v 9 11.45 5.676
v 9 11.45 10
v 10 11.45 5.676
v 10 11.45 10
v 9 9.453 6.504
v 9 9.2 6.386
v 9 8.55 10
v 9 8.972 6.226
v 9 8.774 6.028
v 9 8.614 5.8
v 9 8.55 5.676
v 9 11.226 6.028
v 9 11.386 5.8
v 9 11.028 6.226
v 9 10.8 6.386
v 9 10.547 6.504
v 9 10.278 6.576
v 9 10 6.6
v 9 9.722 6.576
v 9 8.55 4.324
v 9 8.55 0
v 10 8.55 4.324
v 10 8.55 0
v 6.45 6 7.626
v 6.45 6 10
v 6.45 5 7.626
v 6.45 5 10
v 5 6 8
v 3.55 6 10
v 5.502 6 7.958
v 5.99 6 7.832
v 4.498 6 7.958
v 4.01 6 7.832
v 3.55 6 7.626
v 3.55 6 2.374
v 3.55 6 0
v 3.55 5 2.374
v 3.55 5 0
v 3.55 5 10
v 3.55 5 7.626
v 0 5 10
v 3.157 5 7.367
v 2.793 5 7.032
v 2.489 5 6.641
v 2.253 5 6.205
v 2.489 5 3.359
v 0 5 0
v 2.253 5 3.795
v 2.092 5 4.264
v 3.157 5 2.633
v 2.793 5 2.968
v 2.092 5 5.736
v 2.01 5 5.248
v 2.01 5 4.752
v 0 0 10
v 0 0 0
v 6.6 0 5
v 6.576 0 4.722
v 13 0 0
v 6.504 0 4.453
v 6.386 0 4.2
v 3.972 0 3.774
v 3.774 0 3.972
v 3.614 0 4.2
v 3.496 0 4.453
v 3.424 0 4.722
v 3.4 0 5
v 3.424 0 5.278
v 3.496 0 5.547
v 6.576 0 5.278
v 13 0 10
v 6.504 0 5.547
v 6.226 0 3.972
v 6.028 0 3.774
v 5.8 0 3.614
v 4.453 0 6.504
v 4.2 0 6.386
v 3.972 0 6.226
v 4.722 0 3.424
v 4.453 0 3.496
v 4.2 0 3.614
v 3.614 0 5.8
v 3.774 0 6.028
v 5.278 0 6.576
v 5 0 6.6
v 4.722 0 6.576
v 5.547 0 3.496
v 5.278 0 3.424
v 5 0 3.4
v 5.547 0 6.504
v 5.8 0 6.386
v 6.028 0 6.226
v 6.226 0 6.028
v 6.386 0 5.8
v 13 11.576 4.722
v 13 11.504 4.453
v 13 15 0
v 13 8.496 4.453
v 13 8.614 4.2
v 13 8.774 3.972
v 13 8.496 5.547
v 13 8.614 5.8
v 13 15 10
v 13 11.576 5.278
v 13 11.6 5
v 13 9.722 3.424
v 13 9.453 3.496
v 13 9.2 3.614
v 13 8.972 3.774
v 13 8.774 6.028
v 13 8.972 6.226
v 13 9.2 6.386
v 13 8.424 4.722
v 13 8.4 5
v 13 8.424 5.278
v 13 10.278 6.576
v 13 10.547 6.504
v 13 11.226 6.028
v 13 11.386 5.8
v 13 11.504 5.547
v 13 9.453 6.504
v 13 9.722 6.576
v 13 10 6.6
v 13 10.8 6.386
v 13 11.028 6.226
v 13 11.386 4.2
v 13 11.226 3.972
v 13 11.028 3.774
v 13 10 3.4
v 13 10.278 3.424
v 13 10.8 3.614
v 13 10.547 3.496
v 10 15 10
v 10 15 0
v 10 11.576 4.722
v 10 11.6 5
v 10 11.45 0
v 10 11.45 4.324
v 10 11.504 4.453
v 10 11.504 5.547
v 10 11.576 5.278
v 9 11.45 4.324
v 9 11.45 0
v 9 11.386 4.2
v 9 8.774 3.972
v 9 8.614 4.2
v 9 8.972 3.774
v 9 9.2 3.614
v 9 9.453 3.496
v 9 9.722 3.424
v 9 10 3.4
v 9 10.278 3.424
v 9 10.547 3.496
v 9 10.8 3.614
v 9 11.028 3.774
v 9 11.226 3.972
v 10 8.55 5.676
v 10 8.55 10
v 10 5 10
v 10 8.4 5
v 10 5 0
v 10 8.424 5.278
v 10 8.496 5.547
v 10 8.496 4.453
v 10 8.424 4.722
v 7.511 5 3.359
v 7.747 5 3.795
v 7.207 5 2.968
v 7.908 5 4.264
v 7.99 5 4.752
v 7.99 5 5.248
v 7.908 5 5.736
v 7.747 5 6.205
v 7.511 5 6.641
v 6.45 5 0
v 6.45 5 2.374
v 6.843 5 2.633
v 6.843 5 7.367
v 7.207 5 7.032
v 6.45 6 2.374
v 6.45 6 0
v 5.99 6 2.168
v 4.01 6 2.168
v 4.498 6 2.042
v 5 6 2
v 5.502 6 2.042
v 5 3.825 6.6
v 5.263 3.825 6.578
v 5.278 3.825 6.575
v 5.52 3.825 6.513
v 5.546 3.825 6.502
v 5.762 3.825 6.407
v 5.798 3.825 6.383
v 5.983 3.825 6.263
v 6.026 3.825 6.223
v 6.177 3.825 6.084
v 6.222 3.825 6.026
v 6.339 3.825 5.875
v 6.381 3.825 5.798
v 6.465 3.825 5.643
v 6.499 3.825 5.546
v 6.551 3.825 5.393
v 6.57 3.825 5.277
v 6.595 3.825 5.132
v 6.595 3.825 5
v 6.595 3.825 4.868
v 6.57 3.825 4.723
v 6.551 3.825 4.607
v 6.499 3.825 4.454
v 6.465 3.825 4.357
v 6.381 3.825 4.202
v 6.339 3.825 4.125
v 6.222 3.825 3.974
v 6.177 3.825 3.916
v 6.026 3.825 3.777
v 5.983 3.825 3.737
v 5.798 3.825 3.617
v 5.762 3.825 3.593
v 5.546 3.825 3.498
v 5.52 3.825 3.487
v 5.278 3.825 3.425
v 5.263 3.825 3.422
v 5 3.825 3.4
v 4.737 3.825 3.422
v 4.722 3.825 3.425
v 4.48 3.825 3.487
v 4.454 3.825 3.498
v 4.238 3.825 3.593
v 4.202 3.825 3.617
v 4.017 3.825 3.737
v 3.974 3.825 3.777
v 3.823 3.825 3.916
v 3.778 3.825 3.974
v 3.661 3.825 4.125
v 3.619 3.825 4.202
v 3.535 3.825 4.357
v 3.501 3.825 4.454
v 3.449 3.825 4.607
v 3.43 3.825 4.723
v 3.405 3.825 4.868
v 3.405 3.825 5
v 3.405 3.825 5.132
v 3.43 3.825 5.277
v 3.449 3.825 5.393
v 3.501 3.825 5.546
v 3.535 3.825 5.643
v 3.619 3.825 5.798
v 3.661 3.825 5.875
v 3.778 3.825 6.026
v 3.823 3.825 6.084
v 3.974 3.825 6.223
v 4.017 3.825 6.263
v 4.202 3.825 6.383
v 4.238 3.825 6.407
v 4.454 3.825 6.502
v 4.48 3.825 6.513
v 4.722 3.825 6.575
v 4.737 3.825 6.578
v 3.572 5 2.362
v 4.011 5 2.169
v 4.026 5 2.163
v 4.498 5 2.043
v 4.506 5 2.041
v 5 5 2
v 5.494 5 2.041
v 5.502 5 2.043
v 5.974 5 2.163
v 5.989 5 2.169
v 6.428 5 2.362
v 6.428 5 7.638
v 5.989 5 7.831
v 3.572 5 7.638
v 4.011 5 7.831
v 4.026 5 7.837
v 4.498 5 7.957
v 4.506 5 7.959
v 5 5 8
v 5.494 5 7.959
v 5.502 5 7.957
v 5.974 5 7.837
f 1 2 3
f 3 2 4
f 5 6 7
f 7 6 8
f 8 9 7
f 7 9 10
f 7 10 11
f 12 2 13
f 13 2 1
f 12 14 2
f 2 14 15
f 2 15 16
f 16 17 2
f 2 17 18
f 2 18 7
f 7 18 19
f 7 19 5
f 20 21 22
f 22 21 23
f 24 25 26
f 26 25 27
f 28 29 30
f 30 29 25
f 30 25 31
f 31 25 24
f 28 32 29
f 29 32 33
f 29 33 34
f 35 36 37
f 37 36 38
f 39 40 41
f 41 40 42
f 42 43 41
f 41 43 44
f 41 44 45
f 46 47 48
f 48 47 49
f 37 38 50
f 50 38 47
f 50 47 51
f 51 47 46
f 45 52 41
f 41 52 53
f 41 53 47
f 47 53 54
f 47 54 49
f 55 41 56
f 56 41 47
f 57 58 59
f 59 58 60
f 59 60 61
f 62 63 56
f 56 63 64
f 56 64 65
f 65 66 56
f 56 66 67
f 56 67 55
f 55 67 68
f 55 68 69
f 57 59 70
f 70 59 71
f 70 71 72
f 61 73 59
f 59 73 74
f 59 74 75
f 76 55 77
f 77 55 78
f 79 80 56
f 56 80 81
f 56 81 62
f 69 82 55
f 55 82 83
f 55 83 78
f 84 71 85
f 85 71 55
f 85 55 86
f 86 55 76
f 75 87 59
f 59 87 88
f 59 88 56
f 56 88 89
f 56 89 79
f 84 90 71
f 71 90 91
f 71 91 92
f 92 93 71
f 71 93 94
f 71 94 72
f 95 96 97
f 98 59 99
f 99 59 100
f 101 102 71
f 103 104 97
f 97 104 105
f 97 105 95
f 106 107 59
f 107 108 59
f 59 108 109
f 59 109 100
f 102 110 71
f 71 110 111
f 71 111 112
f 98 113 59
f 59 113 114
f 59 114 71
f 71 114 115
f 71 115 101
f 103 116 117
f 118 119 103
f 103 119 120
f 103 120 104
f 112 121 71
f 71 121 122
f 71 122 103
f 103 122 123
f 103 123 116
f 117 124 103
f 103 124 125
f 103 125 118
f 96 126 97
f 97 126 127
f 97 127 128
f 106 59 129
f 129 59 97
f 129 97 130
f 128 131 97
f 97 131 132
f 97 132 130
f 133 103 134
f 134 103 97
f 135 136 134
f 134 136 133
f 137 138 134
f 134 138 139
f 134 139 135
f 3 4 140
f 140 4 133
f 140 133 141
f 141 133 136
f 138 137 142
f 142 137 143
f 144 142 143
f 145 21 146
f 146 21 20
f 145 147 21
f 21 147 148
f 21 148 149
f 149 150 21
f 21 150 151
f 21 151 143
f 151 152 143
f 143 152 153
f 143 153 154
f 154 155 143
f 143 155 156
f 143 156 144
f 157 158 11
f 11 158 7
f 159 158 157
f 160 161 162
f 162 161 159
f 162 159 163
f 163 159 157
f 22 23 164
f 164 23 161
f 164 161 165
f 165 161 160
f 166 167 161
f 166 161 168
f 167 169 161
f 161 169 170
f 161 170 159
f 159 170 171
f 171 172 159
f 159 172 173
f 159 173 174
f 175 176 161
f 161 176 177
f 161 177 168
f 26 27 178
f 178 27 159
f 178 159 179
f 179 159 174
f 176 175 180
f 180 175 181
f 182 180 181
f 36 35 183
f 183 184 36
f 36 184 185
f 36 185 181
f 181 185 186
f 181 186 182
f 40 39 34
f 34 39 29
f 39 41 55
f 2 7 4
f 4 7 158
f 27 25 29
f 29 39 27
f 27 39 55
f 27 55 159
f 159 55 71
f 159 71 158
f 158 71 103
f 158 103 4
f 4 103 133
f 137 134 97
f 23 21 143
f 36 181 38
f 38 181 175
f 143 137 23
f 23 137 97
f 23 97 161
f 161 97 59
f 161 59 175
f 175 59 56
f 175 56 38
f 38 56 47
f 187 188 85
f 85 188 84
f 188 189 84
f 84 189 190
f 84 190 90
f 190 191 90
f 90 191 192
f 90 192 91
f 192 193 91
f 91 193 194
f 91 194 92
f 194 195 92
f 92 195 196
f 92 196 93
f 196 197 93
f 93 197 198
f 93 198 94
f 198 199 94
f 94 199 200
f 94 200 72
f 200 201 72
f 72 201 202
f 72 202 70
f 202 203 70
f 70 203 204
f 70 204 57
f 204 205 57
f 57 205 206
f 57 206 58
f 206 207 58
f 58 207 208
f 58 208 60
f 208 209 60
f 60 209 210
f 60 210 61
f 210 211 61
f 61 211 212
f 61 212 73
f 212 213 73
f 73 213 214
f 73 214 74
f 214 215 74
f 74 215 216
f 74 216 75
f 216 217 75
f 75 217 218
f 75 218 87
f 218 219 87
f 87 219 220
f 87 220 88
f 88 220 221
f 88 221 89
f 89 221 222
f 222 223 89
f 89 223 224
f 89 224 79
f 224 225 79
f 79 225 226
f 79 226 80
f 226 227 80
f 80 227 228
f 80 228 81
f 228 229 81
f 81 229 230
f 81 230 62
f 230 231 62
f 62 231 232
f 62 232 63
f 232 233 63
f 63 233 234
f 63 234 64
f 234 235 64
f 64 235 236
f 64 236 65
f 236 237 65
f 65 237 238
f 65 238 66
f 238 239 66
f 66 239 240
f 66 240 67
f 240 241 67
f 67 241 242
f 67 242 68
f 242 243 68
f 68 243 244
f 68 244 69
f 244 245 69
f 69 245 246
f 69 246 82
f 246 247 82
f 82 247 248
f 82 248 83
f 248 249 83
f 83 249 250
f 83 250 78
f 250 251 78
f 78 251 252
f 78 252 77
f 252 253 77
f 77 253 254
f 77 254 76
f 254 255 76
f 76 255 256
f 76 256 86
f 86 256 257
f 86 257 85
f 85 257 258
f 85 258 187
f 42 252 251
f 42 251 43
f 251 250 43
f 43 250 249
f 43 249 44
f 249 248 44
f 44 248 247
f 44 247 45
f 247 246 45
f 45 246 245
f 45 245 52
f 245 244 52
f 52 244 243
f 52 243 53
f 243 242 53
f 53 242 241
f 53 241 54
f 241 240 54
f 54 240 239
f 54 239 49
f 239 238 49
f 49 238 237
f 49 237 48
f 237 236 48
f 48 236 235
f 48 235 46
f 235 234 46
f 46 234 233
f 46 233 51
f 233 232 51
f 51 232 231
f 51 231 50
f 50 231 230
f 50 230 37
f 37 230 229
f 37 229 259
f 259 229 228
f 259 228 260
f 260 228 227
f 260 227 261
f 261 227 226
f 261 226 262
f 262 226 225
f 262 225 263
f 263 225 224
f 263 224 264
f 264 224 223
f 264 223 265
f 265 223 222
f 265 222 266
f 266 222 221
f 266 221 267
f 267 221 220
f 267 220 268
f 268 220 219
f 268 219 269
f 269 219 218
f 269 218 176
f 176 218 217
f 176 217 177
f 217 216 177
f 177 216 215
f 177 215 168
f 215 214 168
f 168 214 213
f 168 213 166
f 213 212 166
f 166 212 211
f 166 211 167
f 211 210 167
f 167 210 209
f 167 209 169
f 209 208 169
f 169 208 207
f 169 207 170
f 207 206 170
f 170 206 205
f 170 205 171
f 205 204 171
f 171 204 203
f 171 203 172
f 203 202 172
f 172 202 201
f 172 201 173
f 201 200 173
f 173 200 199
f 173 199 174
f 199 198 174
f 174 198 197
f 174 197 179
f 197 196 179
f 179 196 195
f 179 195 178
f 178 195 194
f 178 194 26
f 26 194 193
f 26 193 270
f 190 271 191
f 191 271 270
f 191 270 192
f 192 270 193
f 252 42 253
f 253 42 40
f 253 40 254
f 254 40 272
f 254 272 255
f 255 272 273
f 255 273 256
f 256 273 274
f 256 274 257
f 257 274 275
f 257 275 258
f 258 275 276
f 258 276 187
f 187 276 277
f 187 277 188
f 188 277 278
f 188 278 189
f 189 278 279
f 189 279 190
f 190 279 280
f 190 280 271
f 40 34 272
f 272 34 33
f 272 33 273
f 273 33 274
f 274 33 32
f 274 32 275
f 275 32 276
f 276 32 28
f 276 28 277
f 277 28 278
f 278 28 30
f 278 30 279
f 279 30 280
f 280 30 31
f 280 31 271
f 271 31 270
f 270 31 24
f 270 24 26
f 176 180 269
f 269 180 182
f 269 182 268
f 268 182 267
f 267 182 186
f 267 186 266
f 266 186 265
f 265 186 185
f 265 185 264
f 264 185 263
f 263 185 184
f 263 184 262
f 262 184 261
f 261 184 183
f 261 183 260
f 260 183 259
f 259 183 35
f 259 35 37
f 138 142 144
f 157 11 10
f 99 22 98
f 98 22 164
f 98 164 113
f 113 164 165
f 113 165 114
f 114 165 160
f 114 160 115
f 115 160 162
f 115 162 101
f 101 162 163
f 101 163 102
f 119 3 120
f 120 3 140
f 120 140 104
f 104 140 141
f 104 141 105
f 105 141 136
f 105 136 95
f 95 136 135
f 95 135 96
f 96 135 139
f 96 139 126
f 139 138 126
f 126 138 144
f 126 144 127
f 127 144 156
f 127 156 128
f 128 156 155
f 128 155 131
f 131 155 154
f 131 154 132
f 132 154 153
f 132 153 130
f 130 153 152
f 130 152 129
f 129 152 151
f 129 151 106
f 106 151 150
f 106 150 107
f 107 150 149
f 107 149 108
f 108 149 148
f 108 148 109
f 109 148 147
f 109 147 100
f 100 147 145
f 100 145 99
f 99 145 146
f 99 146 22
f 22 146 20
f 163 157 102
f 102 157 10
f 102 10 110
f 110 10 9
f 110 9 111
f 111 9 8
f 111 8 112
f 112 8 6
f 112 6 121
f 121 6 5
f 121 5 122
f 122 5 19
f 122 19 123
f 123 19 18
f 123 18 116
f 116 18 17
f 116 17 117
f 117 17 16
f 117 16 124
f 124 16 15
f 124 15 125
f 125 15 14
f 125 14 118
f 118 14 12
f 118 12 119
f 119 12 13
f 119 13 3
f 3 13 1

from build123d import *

# Parameters (mm, degrees)
MAIN_DEPTH              = 10
ESQUISSE5_R             = 3
ENL_V_MAT_EXTRU_1_DEPTH = 1
ESQUISSE6_R             = 1.6
ENL_V_MAT_EXTRU_2_DEPTH = 5


with BuildPart() as part:
    # Esquisse1 → Main (new body)
    with BuildSketch(Plane.XY):
        Polygon((0, 5), (3.55, 5), (3.55, 6), (6.45, 6), (6.45, 5), (10, 5), (10, 8.55), (9, 8.55), (9, 11.45), (10, 11.45), (10, 15), (13, 15), (13, 0), (0, 0), align=None)
    extrude(amount=MAIN_DEPTH)

    # Esquisse4 → Fraisage pour vis à tête fraisée (100) #01 (revolve, cut)
    with BuildSketch(Plane(origin=(5, 5, 5), x_dir=(0, 0, 1), z_dir=(1, 0, 0))):
        Polygon((0, 0), (0, 5), (1.6, 5), (1.6, 1.174739484), (3, 0), align=None)
    revolve(axis=Axis((5, 11.35, 5), (0, -1, 0)), mode=Mode.SUBTRACT)

    # Esquisse5 → Enlèv. mat.-Extru.1 (cut)
    with BuildSketch(Plane(origin=(0, 6, 0), x_dir=(1, 0, 0), z_dir=(0, 1, 0))):
        with Locations((5, -5)):
            Circle(ESQUISSE5_R)
    extrude(amount=-ENL_V_MAT_EXTRU_1_DEPTH, mode=Mode.SUBTRACT)

    # Esquisse6 → Enlèv. mat.-Extru.2 (cut, through all)
    with BuildSketch(Plane.ZY.offset(-9)):
        with Locations((5, 10)):
            Circle(ESQUISSE6_R)
    extrude(amount=-ENL_V_MAT_EXTRU_2_DEPTH, mode=Mode.SUBTRACT)


solid = part.part
